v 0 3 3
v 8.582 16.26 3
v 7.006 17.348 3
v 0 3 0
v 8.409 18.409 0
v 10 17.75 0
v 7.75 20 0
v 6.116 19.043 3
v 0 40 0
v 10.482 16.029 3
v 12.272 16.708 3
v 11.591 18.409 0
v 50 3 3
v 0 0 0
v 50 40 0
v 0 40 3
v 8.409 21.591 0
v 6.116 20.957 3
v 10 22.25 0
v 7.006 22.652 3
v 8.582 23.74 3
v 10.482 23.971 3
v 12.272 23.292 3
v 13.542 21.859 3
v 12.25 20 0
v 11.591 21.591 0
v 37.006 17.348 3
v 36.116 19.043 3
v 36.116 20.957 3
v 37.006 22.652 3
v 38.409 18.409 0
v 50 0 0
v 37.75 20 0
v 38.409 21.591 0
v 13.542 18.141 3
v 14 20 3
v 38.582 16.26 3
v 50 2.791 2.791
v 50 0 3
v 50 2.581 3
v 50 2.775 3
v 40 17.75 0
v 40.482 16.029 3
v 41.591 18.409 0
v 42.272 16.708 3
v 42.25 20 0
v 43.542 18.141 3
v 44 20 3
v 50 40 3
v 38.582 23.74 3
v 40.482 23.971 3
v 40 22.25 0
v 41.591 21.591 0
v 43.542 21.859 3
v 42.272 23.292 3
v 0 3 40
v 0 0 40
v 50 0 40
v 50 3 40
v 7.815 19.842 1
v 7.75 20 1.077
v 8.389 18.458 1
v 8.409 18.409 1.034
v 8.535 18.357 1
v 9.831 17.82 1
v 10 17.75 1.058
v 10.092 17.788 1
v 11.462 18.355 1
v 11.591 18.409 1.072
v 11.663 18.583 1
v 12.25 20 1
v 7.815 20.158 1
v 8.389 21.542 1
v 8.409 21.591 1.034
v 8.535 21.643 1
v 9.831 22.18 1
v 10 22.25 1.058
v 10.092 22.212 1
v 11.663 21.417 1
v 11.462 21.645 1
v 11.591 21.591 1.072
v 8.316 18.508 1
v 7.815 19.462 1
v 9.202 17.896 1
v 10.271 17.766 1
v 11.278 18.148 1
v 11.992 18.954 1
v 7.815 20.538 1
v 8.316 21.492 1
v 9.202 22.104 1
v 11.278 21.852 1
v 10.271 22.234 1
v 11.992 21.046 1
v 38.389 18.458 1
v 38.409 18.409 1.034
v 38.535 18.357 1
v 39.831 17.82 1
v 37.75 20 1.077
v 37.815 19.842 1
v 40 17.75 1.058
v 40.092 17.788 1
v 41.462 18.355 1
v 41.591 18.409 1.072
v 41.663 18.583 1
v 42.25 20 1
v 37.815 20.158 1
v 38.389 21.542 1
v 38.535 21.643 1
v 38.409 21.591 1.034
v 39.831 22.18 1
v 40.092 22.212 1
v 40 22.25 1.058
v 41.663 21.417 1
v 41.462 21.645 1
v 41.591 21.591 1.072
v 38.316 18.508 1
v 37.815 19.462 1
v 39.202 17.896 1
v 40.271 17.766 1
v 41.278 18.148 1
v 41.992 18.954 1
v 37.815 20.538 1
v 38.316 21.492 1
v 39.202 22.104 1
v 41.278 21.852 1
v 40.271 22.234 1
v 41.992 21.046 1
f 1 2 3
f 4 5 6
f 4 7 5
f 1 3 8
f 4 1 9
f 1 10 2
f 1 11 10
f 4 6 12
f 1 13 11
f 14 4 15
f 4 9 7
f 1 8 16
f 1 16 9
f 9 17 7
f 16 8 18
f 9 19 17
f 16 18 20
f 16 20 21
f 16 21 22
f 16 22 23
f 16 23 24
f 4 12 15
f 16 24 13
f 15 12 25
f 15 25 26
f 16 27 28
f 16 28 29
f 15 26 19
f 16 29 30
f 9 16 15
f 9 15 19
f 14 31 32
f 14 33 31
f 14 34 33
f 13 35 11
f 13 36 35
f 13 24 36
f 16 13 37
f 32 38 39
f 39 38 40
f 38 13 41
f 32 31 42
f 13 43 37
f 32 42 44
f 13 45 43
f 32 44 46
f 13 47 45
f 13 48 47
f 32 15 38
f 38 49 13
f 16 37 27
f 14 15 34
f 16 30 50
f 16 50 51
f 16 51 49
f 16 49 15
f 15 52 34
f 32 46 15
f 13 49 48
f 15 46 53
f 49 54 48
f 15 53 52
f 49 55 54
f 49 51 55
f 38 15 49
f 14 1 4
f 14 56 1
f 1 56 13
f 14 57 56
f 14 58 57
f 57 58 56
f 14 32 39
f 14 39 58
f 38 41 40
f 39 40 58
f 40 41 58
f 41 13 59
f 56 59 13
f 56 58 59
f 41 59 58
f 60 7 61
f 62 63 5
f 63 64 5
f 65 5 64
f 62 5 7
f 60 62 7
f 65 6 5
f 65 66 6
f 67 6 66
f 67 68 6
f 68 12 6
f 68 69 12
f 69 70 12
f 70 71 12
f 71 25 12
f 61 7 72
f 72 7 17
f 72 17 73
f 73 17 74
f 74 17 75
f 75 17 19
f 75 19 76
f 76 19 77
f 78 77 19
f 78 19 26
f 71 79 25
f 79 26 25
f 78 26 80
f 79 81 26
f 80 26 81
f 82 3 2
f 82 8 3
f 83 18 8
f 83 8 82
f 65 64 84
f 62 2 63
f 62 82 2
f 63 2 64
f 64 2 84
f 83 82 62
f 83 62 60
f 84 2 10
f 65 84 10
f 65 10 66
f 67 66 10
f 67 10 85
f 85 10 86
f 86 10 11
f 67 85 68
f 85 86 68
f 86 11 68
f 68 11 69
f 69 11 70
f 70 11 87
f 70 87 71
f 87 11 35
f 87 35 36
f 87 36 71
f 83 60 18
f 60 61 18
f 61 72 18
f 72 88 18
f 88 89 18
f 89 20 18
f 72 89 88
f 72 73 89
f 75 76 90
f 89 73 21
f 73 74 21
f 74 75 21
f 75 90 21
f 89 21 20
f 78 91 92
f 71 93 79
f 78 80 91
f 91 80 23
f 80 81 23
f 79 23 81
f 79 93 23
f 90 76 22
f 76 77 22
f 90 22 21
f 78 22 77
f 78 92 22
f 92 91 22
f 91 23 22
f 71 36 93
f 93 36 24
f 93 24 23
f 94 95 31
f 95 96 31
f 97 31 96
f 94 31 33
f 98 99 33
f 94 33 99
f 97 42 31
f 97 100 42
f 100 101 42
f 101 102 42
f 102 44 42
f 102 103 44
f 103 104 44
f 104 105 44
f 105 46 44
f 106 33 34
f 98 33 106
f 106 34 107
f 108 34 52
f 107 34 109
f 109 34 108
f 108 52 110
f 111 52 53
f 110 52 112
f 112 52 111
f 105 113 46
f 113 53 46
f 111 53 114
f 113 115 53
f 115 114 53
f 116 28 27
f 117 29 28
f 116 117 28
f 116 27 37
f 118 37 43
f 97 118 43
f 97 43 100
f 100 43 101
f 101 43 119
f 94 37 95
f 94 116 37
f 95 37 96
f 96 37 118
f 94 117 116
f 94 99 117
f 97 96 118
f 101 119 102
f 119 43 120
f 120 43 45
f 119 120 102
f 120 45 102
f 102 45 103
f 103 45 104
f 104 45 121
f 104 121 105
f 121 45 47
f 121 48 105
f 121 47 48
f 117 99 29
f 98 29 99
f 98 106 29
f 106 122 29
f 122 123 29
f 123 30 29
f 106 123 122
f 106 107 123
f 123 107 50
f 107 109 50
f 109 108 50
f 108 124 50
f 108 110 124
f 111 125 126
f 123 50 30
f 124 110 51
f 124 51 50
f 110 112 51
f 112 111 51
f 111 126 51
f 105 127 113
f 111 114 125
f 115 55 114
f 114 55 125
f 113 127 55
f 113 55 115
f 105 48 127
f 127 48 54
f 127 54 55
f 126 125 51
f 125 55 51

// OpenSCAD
// OpenSCAD: L字金具 (L-bracket) - Horizontal plate (XY) + Vertical plate (XZ)
// 内側コーナーを原点に配置: 水平面は +Y 方向、垂直面は +Z 方向に伸びる
// 皿穴: 各面に 2 個ずつ、合計 4 個（M4、Φ4.5 の貫通穴 + 皿座面 Φ8 の深さ 2）
// 皿座面は外側に向ける

difference() {
  // 基本となる二枚の板を union で作成
  union() {
    // 水平板: 50 x 40 x 3 (X × Y × Z)
    cube([50, 40, 3], center=false);
    // 垂直板: 50 x 3 x 40 (X × Y × Z)  ここでは厚さを Y方向の 3mm と解釈
    cube([50, 3, 40], center=false);
  }

  // 水平板の皿穴2個
  // centerline: 水平板の centerline は Y = 20 の位置で左右対称 (X=10, 40)
  translate([10, 20, 0])
    cylinder(h=3, r=2.25, center=false);           // 貫通穴 Φ4.5
  translate([10, 20, 1])
    cylinder(h=2, r1=2.25, r2=4, center=false);    // 皿座面 Φ8 × 深さ 2

  translate([40, 20, 0])
    cylinder(h=3, r=2.25, center=false);
  translate([40, 20, 1])
    cylinder(h=2, r1=2.25, r2=4, center=false);

  // 垂直板の皿穴2個
  // 垂直板の厚さ方向を +X 方向と考え、中心位置を確保
  // 2 本とも X 軸方向に貫通する穴を作成（中心点は垂直板の中心ライン上）
  // 穴1
  translate([0, 10, 20])
    rotate([0, 90, 0])
    cylinder(h=3, r=2.25, center=false);
  translate([1, 10, 20])
    rotate([0, 90, 0])
    cylinder(h=2, r1=2.25, r2=4, center=false);

  // 穴2
  translate([0, 40, 20])
    rotate([0, 90, 0])
    cylinder(h=3, r=2.25, center=false);
  translate([1, 40, 20])
    rotate([0, 90, 0])
    cylinder(h=2, r1=2.25, r2=4, center=false);
}
